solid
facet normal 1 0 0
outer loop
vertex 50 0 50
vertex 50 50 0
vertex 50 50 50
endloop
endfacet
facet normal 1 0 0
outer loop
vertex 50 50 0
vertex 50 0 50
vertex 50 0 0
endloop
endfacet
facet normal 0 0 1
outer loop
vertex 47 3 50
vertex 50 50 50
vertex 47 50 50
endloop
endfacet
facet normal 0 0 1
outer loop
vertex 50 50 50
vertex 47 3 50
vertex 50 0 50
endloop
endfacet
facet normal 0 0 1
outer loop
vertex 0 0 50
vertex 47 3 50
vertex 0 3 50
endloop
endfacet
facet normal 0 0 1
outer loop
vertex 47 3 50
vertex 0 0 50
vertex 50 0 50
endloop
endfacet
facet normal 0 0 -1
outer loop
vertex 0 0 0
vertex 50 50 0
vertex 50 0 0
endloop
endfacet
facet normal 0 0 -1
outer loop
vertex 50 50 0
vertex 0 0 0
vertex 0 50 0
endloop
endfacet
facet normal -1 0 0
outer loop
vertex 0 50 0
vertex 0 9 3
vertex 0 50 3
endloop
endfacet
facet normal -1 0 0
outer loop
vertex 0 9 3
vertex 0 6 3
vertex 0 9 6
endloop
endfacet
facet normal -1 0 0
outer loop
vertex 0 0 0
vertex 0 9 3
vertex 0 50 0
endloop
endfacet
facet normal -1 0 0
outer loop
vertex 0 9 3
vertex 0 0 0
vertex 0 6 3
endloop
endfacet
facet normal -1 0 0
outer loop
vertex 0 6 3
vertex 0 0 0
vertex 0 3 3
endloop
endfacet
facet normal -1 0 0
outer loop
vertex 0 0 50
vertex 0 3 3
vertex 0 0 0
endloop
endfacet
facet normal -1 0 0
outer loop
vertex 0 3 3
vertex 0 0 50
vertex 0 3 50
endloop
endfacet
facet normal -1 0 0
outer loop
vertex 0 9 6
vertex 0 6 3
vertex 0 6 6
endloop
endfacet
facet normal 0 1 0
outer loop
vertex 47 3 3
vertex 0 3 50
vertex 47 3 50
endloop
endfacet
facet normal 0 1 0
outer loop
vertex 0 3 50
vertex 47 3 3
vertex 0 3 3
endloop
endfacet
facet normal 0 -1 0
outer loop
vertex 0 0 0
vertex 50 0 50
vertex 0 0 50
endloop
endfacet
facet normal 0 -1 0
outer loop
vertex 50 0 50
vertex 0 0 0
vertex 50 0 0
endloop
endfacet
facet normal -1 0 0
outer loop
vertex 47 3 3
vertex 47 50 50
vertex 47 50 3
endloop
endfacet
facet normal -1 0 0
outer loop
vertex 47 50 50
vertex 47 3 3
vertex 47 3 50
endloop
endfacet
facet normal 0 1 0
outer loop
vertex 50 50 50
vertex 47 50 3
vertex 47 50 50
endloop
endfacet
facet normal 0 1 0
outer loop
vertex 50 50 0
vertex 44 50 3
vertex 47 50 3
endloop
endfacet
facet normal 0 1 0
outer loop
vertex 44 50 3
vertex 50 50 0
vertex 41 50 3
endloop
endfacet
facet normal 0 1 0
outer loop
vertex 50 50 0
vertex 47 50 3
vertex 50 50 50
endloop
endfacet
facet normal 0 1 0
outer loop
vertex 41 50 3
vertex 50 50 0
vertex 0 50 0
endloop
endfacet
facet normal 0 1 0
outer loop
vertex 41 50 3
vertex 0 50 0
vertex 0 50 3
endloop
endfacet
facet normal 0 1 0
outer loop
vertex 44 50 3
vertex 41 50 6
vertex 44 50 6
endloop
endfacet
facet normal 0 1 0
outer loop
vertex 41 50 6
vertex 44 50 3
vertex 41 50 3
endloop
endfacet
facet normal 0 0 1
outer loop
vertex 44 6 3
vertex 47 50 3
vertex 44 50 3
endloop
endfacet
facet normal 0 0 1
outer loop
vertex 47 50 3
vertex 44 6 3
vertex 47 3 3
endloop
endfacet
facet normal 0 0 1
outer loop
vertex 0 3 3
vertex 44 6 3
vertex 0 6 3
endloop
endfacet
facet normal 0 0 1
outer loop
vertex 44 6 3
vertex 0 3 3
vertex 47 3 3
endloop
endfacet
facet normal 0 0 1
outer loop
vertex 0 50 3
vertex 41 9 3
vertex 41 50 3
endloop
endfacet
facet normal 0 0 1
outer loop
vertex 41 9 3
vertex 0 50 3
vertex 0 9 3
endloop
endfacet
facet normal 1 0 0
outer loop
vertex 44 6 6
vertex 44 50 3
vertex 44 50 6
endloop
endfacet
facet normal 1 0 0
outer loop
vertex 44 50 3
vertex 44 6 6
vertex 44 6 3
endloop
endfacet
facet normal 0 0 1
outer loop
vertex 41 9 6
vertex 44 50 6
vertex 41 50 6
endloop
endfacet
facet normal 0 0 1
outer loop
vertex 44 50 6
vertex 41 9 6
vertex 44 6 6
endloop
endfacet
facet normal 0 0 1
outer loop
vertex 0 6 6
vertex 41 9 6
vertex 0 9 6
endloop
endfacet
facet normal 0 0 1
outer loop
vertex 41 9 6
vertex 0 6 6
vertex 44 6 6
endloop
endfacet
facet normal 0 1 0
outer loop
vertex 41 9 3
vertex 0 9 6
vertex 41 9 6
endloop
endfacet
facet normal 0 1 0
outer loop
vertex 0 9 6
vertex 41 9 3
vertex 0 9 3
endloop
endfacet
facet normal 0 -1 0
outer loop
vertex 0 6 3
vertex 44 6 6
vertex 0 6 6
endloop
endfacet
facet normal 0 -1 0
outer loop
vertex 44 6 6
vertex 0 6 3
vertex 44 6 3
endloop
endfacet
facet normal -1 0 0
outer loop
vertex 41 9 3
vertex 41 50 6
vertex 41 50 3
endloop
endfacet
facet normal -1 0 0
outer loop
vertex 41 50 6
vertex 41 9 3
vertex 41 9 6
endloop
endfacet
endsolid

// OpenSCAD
// file: enclosure_lib.scad
module SimpleCorner(wallWidth = 3,
                    totalWidth = 50,
                    totalHeight = 50,
                    totalDepth = 50,
                    gutterWidth = 3)
{
    // back wall
    cube([totalWidth,wallWidth,totalHeight]);
    // side wall
    translate([totalWidth,0,0])
        rotate([0,0,90])
            cube([totalDepth,wallWidth,totalHeight]);
    // base
    translate([0,totalDepth,0])
        rotate([90, 0, 0])
            cube([totalWidth,
                  wallWidth,
                  totalDepth]);
    // back gutter
    translate([0,
               wallWidth + gutterWidth,
               wallWidth * 2])
        rotate([0,90,0])
            cube([wallWidth, 
                  wallWidth, 
                  totalWidth - wallWidth - gutterWidth]);
    // side gutter
    translate([totalWidth - 2 * wallWidth - gutterWidth,
               totalDepth,
               wallWidth])
        rotate([90,0,0])
            cube([wallWidth, 
                  wallWidth, 
                  totalDepth - wallWidth - gutterWidth]);
    // gutter fill
    cube(3);
}
module Cone(holeRadius = 3)
{
    centerRadius    = 3;
    centerHeight    = 2;
    masterRadius    = 18;
    totalHeight     = 3;
    tanAlpha        = totalHeight / (masterRadius - centerRadius);
    holeHeight      = tanAlpha * (masterRadius - holeRadius);
    rotate_extrude()
        polygon(points=[
            [0, 0],
            [masterRadius, 0],
            [holeRadius, holeHeight],
            [holeRadius, 1],
            [0, 1]
        ]);
}
module Base(width = 50,
       depth = 50,
       halfHeight = 3)
{
    cube([width, depth, halfHeight]);
    translate([width / 2, depth / 2, halfHeight])
        Cone(3.5);
}

module BasedCorner(wallWidth = 3,
                   width = 50,
                   height = 50,
                   depth = 50,
                   gutterWidth = 3.4)
{
    translate([0, 0, wallWidth])
        union() {
            SimpleCorner(wallWidth, 
                         width, 
                         height - wallWidth, 
                         depth,
                         gutterWidth);
            translate([0,0, -wallWidth])
                difference() {
                    cube([width, depth, wallWidth]);
                    translate([width/2, depth/2, -.01])
                        Cone();
            }
        }
}

module top_profile(gutterWidth = 3) 
{
    polygon([
        [0, 0],
        [0, 9],
        [6, 9],
        [6, 6],
        [21,6],
        [21,3],
        [6 + gutterWidth, 3],
        [6 + gutterWidth, 0],
        [3 + gutterWidth, 0],
        [3 + gutterWidth, 3],
        [3, 3],
        [3, 0],
    ]);
}


module CableCoverBorderProfile(
    width = 6,
    borderHeight = 3,
    gutterHeight = 3,
    gutterWidth = 3)
{
    polygon([
        [0,0],
        [width, 0],
        [width, borderHeight],
        [width - gutterWidth, borderHeight],
        [width - gutterWidth, borderHeight + gutterHeight],
        [width, borderHeight + gutterHeight],
        [width, 2 * borderHeight + gutterHeight],
        [0, 2 * borderHeight + gutterHeight]
    ]);
}
module CableCoverBorderLinear(height = 10)
{
    linear_extrude(height)
        CableCoverBorderProfile();
}
union()
{
    //rotate_extrude(180)
    //    CableCoverBorderProfile();
    CableCoverBorderLinear();
    translate([-6, 3, 0])
        cube([6, 3, 10]);
    translate([-6, 9, 0])
        rotate([0, 0, 180])
            CableCoverBorderLinear();
}
// main file
use <enclosure_lib.scad>

wall_h = 3;
h=50;
d=50;
w=50;

SimpleCorner(wall_h, w, h, d, 3);
